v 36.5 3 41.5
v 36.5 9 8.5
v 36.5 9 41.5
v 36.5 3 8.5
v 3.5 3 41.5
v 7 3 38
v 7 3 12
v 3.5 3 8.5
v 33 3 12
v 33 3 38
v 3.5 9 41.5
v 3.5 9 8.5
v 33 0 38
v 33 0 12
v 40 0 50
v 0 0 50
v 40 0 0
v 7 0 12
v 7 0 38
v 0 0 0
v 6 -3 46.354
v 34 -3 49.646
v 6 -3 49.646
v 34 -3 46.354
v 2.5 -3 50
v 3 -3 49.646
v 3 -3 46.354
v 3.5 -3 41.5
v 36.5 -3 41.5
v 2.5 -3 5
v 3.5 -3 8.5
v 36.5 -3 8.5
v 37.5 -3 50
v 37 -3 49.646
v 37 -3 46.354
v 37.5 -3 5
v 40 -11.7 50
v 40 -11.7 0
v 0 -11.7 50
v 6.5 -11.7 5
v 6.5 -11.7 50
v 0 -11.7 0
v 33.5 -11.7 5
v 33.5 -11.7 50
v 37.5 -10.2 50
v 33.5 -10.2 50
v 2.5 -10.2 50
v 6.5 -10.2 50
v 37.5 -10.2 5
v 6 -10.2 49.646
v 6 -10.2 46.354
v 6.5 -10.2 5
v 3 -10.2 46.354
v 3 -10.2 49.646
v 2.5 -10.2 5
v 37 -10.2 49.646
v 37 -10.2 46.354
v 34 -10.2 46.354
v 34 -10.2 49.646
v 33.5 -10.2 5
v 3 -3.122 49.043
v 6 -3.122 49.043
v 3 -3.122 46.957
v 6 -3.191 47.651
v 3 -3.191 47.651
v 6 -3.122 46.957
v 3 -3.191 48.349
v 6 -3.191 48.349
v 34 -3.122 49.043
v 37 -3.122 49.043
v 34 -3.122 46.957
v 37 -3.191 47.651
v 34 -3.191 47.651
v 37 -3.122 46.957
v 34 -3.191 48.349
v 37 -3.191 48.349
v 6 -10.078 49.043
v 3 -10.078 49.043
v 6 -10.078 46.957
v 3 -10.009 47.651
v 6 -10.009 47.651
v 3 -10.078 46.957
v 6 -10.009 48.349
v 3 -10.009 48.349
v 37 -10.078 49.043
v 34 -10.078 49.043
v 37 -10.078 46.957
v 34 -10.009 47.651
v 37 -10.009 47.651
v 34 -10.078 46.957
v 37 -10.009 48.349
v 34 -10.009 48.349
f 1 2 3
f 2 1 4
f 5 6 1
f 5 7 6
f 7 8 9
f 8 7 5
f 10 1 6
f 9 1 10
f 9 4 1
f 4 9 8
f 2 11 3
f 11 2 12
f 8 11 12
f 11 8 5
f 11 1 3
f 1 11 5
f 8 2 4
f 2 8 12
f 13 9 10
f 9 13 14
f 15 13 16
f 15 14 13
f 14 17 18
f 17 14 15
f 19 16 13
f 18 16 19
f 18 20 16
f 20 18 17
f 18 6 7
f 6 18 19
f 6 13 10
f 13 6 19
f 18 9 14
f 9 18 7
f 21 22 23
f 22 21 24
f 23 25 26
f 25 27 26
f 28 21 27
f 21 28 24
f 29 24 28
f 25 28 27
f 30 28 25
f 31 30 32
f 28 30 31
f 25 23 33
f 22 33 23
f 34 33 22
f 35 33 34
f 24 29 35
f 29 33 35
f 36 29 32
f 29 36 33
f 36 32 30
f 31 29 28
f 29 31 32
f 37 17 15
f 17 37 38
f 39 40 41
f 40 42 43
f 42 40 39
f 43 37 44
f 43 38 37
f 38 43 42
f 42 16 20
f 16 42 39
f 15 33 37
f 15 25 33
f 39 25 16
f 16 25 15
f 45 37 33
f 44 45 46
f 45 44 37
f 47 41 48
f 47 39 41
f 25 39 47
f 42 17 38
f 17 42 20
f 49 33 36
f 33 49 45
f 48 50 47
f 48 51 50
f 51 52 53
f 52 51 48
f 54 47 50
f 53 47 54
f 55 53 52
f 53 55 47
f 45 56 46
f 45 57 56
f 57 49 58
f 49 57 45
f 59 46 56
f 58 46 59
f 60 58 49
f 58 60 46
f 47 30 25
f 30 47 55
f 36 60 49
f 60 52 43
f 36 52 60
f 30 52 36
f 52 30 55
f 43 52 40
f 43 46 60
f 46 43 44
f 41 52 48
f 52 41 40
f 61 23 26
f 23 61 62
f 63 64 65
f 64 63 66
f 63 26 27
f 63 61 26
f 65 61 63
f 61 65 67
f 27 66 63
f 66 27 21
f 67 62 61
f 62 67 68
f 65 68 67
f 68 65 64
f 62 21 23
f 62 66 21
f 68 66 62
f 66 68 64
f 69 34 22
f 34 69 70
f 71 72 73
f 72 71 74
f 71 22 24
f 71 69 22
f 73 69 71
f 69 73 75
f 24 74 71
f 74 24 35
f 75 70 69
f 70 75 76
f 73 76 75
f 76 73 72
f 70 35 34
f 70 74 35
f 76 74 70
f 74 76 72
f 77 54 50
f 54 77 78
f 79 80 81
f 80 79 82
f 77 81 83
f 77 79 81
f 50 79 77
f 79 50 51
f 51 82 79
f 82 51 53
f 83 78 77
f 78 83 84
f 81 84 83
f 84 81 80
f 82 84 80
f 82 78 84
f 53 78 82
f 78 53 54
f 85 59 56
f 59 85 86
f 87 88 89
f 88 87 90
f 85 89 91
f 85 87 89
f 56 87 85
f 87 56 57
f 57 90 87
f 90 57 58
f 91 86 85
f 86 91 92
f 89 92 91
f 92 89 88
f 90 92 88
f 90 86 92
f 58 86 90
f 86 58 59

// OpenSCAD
/*
The MIT License (MIT)

Copyright (c) 2020 Shinichi Ohki.

Permission is hereby granted, free of charge, to any person obtaining a copy
of this software and associated documentation files (the "Software"), to deal
in the Software without restriction, including without limitation the rights
to use, copy, modify, merge, publish, distribute, sublicense, and/or sell
copies of the Software, and to permit persons to whom the Software is
furnished to do so, subject to the following conditions:

The above copyright notice and this permission notice shall be included in
all copies or substantial portions of the Software.

THE SOFTWARE IS PROVIDED "AS IS", WITHOUT WARRANTY OF ANY KIND, EXPRESS OR
IMPLIED, INCLUDING BUT NOT LIMITED TO THE WARRANTIES OF MERCHANTABILITY,
FITNESS FOR A PARTICULAR PURPOSE AND NONINFRINGEMENT. IN NO EVENT SHALL THE
AUTHORS OR COPYRIGHT HOLDERS BE LIABLE FOR ANY CLAIM, DAMAGES OR OTHER
LIABILITY, WHETHER IN AN ACTION OF CONTRACT, TORT OR OTHERWISE, ARISING FROM,
OUT OF OR IN CONNECTION WITH THE SOFTWARE OR THE USE OR OTHER DEALINGS IN
THE SOFTWARE.
*/

maleBaseWidth = 33;
maleBaseThick = 6;
maleMiddleWidth = 26;
maleMiddleThick = 3;
maleTopWidth = 33;
maleTopThick = 3;

$fn = 63;

module HeadMale() {
    translate([0,0,0]){
        cube([maleBaseWidth,maleBaseWidth,maleBaseThick]);
    }

    translate([(maleBaseWidth-maleMiddleWidth)/2,(maleBaseWidth-maleMiddleWidth)/2,maleBaseThick]){
        cube([maleMiddleWidth,maleMiddleWidth,maleMiddleThick]);
    }

    translate([0,0,maleBaseThick+maleMiddleThick]){
        cube([maleTopWidth,maleTopWidth,maleTopThick]);
    }
}

module  tokki() {
    // 突起
    difference() {
        rotate([0,90,0]) {
            cylinder(3,7,7);
        }
        translate([-0.1,-10,-8.3]){
            cube([3.2, 20, 15]);
        }
    }
}

femaleBaseWidth = 40;
femaleBaseLength = 50;
femaleBaseThick = maleBaseThick+maleMiddleThick+2.7;

module HeadFemale() {
    difference() {
        // 全体
        translate([0,0,0]){
            cube([femaleBaseWidth,femaleBaseLength,femaleBaseThick]);
        }
        // 中の空間
        translate([(femaleBaseWidth-(maleBaseWidth+2))/2,5,3]){
            cube([maleBaseWidth+2,femaleBaseLength,maleBaseThick+1.2]);
        }
        // 上の空間
        translate([(femaleBaseWidth-(maleMiddleWidth+1))/2,5,10-1]){
            cube([maleMiddleWidth+1,femaleBaseLength,maleMiddleThick+2]);
        }
    }
    translate([3,femaleBaseWidth-2+10,-3.8]) {
        tokki();
    }
    translate([maleBaseWidth+1,femaleBaseWidth-2+10,-3.8]) {
        tokki();
    }
    translate([3+3,femaleBaseWidth-2+10,femaleBaseThick+5.3]) {
        rotate([0,180,0]) {
            tokki();
        }
    }
    translate([maleBaseWidth+1+3,femaleBaseWidth-2+10,femaleBaseThick+5.3]) {
        rotate([0,180,0]) {
            tokki();
        }
    }
}

module Adaptor() {
    translate([(femaleBaseWidth-maleBaseWidth)/2,(femaleBaseLength-maleBaseWidth)/2,-(maleBaseThick+maleMiddleThick)]){
        rotate([0,0,0]) {
            HeadMale();
        }
    }
    HeadFemale();
}

rotate([90,0,0]) {
    Adaptor();
}
